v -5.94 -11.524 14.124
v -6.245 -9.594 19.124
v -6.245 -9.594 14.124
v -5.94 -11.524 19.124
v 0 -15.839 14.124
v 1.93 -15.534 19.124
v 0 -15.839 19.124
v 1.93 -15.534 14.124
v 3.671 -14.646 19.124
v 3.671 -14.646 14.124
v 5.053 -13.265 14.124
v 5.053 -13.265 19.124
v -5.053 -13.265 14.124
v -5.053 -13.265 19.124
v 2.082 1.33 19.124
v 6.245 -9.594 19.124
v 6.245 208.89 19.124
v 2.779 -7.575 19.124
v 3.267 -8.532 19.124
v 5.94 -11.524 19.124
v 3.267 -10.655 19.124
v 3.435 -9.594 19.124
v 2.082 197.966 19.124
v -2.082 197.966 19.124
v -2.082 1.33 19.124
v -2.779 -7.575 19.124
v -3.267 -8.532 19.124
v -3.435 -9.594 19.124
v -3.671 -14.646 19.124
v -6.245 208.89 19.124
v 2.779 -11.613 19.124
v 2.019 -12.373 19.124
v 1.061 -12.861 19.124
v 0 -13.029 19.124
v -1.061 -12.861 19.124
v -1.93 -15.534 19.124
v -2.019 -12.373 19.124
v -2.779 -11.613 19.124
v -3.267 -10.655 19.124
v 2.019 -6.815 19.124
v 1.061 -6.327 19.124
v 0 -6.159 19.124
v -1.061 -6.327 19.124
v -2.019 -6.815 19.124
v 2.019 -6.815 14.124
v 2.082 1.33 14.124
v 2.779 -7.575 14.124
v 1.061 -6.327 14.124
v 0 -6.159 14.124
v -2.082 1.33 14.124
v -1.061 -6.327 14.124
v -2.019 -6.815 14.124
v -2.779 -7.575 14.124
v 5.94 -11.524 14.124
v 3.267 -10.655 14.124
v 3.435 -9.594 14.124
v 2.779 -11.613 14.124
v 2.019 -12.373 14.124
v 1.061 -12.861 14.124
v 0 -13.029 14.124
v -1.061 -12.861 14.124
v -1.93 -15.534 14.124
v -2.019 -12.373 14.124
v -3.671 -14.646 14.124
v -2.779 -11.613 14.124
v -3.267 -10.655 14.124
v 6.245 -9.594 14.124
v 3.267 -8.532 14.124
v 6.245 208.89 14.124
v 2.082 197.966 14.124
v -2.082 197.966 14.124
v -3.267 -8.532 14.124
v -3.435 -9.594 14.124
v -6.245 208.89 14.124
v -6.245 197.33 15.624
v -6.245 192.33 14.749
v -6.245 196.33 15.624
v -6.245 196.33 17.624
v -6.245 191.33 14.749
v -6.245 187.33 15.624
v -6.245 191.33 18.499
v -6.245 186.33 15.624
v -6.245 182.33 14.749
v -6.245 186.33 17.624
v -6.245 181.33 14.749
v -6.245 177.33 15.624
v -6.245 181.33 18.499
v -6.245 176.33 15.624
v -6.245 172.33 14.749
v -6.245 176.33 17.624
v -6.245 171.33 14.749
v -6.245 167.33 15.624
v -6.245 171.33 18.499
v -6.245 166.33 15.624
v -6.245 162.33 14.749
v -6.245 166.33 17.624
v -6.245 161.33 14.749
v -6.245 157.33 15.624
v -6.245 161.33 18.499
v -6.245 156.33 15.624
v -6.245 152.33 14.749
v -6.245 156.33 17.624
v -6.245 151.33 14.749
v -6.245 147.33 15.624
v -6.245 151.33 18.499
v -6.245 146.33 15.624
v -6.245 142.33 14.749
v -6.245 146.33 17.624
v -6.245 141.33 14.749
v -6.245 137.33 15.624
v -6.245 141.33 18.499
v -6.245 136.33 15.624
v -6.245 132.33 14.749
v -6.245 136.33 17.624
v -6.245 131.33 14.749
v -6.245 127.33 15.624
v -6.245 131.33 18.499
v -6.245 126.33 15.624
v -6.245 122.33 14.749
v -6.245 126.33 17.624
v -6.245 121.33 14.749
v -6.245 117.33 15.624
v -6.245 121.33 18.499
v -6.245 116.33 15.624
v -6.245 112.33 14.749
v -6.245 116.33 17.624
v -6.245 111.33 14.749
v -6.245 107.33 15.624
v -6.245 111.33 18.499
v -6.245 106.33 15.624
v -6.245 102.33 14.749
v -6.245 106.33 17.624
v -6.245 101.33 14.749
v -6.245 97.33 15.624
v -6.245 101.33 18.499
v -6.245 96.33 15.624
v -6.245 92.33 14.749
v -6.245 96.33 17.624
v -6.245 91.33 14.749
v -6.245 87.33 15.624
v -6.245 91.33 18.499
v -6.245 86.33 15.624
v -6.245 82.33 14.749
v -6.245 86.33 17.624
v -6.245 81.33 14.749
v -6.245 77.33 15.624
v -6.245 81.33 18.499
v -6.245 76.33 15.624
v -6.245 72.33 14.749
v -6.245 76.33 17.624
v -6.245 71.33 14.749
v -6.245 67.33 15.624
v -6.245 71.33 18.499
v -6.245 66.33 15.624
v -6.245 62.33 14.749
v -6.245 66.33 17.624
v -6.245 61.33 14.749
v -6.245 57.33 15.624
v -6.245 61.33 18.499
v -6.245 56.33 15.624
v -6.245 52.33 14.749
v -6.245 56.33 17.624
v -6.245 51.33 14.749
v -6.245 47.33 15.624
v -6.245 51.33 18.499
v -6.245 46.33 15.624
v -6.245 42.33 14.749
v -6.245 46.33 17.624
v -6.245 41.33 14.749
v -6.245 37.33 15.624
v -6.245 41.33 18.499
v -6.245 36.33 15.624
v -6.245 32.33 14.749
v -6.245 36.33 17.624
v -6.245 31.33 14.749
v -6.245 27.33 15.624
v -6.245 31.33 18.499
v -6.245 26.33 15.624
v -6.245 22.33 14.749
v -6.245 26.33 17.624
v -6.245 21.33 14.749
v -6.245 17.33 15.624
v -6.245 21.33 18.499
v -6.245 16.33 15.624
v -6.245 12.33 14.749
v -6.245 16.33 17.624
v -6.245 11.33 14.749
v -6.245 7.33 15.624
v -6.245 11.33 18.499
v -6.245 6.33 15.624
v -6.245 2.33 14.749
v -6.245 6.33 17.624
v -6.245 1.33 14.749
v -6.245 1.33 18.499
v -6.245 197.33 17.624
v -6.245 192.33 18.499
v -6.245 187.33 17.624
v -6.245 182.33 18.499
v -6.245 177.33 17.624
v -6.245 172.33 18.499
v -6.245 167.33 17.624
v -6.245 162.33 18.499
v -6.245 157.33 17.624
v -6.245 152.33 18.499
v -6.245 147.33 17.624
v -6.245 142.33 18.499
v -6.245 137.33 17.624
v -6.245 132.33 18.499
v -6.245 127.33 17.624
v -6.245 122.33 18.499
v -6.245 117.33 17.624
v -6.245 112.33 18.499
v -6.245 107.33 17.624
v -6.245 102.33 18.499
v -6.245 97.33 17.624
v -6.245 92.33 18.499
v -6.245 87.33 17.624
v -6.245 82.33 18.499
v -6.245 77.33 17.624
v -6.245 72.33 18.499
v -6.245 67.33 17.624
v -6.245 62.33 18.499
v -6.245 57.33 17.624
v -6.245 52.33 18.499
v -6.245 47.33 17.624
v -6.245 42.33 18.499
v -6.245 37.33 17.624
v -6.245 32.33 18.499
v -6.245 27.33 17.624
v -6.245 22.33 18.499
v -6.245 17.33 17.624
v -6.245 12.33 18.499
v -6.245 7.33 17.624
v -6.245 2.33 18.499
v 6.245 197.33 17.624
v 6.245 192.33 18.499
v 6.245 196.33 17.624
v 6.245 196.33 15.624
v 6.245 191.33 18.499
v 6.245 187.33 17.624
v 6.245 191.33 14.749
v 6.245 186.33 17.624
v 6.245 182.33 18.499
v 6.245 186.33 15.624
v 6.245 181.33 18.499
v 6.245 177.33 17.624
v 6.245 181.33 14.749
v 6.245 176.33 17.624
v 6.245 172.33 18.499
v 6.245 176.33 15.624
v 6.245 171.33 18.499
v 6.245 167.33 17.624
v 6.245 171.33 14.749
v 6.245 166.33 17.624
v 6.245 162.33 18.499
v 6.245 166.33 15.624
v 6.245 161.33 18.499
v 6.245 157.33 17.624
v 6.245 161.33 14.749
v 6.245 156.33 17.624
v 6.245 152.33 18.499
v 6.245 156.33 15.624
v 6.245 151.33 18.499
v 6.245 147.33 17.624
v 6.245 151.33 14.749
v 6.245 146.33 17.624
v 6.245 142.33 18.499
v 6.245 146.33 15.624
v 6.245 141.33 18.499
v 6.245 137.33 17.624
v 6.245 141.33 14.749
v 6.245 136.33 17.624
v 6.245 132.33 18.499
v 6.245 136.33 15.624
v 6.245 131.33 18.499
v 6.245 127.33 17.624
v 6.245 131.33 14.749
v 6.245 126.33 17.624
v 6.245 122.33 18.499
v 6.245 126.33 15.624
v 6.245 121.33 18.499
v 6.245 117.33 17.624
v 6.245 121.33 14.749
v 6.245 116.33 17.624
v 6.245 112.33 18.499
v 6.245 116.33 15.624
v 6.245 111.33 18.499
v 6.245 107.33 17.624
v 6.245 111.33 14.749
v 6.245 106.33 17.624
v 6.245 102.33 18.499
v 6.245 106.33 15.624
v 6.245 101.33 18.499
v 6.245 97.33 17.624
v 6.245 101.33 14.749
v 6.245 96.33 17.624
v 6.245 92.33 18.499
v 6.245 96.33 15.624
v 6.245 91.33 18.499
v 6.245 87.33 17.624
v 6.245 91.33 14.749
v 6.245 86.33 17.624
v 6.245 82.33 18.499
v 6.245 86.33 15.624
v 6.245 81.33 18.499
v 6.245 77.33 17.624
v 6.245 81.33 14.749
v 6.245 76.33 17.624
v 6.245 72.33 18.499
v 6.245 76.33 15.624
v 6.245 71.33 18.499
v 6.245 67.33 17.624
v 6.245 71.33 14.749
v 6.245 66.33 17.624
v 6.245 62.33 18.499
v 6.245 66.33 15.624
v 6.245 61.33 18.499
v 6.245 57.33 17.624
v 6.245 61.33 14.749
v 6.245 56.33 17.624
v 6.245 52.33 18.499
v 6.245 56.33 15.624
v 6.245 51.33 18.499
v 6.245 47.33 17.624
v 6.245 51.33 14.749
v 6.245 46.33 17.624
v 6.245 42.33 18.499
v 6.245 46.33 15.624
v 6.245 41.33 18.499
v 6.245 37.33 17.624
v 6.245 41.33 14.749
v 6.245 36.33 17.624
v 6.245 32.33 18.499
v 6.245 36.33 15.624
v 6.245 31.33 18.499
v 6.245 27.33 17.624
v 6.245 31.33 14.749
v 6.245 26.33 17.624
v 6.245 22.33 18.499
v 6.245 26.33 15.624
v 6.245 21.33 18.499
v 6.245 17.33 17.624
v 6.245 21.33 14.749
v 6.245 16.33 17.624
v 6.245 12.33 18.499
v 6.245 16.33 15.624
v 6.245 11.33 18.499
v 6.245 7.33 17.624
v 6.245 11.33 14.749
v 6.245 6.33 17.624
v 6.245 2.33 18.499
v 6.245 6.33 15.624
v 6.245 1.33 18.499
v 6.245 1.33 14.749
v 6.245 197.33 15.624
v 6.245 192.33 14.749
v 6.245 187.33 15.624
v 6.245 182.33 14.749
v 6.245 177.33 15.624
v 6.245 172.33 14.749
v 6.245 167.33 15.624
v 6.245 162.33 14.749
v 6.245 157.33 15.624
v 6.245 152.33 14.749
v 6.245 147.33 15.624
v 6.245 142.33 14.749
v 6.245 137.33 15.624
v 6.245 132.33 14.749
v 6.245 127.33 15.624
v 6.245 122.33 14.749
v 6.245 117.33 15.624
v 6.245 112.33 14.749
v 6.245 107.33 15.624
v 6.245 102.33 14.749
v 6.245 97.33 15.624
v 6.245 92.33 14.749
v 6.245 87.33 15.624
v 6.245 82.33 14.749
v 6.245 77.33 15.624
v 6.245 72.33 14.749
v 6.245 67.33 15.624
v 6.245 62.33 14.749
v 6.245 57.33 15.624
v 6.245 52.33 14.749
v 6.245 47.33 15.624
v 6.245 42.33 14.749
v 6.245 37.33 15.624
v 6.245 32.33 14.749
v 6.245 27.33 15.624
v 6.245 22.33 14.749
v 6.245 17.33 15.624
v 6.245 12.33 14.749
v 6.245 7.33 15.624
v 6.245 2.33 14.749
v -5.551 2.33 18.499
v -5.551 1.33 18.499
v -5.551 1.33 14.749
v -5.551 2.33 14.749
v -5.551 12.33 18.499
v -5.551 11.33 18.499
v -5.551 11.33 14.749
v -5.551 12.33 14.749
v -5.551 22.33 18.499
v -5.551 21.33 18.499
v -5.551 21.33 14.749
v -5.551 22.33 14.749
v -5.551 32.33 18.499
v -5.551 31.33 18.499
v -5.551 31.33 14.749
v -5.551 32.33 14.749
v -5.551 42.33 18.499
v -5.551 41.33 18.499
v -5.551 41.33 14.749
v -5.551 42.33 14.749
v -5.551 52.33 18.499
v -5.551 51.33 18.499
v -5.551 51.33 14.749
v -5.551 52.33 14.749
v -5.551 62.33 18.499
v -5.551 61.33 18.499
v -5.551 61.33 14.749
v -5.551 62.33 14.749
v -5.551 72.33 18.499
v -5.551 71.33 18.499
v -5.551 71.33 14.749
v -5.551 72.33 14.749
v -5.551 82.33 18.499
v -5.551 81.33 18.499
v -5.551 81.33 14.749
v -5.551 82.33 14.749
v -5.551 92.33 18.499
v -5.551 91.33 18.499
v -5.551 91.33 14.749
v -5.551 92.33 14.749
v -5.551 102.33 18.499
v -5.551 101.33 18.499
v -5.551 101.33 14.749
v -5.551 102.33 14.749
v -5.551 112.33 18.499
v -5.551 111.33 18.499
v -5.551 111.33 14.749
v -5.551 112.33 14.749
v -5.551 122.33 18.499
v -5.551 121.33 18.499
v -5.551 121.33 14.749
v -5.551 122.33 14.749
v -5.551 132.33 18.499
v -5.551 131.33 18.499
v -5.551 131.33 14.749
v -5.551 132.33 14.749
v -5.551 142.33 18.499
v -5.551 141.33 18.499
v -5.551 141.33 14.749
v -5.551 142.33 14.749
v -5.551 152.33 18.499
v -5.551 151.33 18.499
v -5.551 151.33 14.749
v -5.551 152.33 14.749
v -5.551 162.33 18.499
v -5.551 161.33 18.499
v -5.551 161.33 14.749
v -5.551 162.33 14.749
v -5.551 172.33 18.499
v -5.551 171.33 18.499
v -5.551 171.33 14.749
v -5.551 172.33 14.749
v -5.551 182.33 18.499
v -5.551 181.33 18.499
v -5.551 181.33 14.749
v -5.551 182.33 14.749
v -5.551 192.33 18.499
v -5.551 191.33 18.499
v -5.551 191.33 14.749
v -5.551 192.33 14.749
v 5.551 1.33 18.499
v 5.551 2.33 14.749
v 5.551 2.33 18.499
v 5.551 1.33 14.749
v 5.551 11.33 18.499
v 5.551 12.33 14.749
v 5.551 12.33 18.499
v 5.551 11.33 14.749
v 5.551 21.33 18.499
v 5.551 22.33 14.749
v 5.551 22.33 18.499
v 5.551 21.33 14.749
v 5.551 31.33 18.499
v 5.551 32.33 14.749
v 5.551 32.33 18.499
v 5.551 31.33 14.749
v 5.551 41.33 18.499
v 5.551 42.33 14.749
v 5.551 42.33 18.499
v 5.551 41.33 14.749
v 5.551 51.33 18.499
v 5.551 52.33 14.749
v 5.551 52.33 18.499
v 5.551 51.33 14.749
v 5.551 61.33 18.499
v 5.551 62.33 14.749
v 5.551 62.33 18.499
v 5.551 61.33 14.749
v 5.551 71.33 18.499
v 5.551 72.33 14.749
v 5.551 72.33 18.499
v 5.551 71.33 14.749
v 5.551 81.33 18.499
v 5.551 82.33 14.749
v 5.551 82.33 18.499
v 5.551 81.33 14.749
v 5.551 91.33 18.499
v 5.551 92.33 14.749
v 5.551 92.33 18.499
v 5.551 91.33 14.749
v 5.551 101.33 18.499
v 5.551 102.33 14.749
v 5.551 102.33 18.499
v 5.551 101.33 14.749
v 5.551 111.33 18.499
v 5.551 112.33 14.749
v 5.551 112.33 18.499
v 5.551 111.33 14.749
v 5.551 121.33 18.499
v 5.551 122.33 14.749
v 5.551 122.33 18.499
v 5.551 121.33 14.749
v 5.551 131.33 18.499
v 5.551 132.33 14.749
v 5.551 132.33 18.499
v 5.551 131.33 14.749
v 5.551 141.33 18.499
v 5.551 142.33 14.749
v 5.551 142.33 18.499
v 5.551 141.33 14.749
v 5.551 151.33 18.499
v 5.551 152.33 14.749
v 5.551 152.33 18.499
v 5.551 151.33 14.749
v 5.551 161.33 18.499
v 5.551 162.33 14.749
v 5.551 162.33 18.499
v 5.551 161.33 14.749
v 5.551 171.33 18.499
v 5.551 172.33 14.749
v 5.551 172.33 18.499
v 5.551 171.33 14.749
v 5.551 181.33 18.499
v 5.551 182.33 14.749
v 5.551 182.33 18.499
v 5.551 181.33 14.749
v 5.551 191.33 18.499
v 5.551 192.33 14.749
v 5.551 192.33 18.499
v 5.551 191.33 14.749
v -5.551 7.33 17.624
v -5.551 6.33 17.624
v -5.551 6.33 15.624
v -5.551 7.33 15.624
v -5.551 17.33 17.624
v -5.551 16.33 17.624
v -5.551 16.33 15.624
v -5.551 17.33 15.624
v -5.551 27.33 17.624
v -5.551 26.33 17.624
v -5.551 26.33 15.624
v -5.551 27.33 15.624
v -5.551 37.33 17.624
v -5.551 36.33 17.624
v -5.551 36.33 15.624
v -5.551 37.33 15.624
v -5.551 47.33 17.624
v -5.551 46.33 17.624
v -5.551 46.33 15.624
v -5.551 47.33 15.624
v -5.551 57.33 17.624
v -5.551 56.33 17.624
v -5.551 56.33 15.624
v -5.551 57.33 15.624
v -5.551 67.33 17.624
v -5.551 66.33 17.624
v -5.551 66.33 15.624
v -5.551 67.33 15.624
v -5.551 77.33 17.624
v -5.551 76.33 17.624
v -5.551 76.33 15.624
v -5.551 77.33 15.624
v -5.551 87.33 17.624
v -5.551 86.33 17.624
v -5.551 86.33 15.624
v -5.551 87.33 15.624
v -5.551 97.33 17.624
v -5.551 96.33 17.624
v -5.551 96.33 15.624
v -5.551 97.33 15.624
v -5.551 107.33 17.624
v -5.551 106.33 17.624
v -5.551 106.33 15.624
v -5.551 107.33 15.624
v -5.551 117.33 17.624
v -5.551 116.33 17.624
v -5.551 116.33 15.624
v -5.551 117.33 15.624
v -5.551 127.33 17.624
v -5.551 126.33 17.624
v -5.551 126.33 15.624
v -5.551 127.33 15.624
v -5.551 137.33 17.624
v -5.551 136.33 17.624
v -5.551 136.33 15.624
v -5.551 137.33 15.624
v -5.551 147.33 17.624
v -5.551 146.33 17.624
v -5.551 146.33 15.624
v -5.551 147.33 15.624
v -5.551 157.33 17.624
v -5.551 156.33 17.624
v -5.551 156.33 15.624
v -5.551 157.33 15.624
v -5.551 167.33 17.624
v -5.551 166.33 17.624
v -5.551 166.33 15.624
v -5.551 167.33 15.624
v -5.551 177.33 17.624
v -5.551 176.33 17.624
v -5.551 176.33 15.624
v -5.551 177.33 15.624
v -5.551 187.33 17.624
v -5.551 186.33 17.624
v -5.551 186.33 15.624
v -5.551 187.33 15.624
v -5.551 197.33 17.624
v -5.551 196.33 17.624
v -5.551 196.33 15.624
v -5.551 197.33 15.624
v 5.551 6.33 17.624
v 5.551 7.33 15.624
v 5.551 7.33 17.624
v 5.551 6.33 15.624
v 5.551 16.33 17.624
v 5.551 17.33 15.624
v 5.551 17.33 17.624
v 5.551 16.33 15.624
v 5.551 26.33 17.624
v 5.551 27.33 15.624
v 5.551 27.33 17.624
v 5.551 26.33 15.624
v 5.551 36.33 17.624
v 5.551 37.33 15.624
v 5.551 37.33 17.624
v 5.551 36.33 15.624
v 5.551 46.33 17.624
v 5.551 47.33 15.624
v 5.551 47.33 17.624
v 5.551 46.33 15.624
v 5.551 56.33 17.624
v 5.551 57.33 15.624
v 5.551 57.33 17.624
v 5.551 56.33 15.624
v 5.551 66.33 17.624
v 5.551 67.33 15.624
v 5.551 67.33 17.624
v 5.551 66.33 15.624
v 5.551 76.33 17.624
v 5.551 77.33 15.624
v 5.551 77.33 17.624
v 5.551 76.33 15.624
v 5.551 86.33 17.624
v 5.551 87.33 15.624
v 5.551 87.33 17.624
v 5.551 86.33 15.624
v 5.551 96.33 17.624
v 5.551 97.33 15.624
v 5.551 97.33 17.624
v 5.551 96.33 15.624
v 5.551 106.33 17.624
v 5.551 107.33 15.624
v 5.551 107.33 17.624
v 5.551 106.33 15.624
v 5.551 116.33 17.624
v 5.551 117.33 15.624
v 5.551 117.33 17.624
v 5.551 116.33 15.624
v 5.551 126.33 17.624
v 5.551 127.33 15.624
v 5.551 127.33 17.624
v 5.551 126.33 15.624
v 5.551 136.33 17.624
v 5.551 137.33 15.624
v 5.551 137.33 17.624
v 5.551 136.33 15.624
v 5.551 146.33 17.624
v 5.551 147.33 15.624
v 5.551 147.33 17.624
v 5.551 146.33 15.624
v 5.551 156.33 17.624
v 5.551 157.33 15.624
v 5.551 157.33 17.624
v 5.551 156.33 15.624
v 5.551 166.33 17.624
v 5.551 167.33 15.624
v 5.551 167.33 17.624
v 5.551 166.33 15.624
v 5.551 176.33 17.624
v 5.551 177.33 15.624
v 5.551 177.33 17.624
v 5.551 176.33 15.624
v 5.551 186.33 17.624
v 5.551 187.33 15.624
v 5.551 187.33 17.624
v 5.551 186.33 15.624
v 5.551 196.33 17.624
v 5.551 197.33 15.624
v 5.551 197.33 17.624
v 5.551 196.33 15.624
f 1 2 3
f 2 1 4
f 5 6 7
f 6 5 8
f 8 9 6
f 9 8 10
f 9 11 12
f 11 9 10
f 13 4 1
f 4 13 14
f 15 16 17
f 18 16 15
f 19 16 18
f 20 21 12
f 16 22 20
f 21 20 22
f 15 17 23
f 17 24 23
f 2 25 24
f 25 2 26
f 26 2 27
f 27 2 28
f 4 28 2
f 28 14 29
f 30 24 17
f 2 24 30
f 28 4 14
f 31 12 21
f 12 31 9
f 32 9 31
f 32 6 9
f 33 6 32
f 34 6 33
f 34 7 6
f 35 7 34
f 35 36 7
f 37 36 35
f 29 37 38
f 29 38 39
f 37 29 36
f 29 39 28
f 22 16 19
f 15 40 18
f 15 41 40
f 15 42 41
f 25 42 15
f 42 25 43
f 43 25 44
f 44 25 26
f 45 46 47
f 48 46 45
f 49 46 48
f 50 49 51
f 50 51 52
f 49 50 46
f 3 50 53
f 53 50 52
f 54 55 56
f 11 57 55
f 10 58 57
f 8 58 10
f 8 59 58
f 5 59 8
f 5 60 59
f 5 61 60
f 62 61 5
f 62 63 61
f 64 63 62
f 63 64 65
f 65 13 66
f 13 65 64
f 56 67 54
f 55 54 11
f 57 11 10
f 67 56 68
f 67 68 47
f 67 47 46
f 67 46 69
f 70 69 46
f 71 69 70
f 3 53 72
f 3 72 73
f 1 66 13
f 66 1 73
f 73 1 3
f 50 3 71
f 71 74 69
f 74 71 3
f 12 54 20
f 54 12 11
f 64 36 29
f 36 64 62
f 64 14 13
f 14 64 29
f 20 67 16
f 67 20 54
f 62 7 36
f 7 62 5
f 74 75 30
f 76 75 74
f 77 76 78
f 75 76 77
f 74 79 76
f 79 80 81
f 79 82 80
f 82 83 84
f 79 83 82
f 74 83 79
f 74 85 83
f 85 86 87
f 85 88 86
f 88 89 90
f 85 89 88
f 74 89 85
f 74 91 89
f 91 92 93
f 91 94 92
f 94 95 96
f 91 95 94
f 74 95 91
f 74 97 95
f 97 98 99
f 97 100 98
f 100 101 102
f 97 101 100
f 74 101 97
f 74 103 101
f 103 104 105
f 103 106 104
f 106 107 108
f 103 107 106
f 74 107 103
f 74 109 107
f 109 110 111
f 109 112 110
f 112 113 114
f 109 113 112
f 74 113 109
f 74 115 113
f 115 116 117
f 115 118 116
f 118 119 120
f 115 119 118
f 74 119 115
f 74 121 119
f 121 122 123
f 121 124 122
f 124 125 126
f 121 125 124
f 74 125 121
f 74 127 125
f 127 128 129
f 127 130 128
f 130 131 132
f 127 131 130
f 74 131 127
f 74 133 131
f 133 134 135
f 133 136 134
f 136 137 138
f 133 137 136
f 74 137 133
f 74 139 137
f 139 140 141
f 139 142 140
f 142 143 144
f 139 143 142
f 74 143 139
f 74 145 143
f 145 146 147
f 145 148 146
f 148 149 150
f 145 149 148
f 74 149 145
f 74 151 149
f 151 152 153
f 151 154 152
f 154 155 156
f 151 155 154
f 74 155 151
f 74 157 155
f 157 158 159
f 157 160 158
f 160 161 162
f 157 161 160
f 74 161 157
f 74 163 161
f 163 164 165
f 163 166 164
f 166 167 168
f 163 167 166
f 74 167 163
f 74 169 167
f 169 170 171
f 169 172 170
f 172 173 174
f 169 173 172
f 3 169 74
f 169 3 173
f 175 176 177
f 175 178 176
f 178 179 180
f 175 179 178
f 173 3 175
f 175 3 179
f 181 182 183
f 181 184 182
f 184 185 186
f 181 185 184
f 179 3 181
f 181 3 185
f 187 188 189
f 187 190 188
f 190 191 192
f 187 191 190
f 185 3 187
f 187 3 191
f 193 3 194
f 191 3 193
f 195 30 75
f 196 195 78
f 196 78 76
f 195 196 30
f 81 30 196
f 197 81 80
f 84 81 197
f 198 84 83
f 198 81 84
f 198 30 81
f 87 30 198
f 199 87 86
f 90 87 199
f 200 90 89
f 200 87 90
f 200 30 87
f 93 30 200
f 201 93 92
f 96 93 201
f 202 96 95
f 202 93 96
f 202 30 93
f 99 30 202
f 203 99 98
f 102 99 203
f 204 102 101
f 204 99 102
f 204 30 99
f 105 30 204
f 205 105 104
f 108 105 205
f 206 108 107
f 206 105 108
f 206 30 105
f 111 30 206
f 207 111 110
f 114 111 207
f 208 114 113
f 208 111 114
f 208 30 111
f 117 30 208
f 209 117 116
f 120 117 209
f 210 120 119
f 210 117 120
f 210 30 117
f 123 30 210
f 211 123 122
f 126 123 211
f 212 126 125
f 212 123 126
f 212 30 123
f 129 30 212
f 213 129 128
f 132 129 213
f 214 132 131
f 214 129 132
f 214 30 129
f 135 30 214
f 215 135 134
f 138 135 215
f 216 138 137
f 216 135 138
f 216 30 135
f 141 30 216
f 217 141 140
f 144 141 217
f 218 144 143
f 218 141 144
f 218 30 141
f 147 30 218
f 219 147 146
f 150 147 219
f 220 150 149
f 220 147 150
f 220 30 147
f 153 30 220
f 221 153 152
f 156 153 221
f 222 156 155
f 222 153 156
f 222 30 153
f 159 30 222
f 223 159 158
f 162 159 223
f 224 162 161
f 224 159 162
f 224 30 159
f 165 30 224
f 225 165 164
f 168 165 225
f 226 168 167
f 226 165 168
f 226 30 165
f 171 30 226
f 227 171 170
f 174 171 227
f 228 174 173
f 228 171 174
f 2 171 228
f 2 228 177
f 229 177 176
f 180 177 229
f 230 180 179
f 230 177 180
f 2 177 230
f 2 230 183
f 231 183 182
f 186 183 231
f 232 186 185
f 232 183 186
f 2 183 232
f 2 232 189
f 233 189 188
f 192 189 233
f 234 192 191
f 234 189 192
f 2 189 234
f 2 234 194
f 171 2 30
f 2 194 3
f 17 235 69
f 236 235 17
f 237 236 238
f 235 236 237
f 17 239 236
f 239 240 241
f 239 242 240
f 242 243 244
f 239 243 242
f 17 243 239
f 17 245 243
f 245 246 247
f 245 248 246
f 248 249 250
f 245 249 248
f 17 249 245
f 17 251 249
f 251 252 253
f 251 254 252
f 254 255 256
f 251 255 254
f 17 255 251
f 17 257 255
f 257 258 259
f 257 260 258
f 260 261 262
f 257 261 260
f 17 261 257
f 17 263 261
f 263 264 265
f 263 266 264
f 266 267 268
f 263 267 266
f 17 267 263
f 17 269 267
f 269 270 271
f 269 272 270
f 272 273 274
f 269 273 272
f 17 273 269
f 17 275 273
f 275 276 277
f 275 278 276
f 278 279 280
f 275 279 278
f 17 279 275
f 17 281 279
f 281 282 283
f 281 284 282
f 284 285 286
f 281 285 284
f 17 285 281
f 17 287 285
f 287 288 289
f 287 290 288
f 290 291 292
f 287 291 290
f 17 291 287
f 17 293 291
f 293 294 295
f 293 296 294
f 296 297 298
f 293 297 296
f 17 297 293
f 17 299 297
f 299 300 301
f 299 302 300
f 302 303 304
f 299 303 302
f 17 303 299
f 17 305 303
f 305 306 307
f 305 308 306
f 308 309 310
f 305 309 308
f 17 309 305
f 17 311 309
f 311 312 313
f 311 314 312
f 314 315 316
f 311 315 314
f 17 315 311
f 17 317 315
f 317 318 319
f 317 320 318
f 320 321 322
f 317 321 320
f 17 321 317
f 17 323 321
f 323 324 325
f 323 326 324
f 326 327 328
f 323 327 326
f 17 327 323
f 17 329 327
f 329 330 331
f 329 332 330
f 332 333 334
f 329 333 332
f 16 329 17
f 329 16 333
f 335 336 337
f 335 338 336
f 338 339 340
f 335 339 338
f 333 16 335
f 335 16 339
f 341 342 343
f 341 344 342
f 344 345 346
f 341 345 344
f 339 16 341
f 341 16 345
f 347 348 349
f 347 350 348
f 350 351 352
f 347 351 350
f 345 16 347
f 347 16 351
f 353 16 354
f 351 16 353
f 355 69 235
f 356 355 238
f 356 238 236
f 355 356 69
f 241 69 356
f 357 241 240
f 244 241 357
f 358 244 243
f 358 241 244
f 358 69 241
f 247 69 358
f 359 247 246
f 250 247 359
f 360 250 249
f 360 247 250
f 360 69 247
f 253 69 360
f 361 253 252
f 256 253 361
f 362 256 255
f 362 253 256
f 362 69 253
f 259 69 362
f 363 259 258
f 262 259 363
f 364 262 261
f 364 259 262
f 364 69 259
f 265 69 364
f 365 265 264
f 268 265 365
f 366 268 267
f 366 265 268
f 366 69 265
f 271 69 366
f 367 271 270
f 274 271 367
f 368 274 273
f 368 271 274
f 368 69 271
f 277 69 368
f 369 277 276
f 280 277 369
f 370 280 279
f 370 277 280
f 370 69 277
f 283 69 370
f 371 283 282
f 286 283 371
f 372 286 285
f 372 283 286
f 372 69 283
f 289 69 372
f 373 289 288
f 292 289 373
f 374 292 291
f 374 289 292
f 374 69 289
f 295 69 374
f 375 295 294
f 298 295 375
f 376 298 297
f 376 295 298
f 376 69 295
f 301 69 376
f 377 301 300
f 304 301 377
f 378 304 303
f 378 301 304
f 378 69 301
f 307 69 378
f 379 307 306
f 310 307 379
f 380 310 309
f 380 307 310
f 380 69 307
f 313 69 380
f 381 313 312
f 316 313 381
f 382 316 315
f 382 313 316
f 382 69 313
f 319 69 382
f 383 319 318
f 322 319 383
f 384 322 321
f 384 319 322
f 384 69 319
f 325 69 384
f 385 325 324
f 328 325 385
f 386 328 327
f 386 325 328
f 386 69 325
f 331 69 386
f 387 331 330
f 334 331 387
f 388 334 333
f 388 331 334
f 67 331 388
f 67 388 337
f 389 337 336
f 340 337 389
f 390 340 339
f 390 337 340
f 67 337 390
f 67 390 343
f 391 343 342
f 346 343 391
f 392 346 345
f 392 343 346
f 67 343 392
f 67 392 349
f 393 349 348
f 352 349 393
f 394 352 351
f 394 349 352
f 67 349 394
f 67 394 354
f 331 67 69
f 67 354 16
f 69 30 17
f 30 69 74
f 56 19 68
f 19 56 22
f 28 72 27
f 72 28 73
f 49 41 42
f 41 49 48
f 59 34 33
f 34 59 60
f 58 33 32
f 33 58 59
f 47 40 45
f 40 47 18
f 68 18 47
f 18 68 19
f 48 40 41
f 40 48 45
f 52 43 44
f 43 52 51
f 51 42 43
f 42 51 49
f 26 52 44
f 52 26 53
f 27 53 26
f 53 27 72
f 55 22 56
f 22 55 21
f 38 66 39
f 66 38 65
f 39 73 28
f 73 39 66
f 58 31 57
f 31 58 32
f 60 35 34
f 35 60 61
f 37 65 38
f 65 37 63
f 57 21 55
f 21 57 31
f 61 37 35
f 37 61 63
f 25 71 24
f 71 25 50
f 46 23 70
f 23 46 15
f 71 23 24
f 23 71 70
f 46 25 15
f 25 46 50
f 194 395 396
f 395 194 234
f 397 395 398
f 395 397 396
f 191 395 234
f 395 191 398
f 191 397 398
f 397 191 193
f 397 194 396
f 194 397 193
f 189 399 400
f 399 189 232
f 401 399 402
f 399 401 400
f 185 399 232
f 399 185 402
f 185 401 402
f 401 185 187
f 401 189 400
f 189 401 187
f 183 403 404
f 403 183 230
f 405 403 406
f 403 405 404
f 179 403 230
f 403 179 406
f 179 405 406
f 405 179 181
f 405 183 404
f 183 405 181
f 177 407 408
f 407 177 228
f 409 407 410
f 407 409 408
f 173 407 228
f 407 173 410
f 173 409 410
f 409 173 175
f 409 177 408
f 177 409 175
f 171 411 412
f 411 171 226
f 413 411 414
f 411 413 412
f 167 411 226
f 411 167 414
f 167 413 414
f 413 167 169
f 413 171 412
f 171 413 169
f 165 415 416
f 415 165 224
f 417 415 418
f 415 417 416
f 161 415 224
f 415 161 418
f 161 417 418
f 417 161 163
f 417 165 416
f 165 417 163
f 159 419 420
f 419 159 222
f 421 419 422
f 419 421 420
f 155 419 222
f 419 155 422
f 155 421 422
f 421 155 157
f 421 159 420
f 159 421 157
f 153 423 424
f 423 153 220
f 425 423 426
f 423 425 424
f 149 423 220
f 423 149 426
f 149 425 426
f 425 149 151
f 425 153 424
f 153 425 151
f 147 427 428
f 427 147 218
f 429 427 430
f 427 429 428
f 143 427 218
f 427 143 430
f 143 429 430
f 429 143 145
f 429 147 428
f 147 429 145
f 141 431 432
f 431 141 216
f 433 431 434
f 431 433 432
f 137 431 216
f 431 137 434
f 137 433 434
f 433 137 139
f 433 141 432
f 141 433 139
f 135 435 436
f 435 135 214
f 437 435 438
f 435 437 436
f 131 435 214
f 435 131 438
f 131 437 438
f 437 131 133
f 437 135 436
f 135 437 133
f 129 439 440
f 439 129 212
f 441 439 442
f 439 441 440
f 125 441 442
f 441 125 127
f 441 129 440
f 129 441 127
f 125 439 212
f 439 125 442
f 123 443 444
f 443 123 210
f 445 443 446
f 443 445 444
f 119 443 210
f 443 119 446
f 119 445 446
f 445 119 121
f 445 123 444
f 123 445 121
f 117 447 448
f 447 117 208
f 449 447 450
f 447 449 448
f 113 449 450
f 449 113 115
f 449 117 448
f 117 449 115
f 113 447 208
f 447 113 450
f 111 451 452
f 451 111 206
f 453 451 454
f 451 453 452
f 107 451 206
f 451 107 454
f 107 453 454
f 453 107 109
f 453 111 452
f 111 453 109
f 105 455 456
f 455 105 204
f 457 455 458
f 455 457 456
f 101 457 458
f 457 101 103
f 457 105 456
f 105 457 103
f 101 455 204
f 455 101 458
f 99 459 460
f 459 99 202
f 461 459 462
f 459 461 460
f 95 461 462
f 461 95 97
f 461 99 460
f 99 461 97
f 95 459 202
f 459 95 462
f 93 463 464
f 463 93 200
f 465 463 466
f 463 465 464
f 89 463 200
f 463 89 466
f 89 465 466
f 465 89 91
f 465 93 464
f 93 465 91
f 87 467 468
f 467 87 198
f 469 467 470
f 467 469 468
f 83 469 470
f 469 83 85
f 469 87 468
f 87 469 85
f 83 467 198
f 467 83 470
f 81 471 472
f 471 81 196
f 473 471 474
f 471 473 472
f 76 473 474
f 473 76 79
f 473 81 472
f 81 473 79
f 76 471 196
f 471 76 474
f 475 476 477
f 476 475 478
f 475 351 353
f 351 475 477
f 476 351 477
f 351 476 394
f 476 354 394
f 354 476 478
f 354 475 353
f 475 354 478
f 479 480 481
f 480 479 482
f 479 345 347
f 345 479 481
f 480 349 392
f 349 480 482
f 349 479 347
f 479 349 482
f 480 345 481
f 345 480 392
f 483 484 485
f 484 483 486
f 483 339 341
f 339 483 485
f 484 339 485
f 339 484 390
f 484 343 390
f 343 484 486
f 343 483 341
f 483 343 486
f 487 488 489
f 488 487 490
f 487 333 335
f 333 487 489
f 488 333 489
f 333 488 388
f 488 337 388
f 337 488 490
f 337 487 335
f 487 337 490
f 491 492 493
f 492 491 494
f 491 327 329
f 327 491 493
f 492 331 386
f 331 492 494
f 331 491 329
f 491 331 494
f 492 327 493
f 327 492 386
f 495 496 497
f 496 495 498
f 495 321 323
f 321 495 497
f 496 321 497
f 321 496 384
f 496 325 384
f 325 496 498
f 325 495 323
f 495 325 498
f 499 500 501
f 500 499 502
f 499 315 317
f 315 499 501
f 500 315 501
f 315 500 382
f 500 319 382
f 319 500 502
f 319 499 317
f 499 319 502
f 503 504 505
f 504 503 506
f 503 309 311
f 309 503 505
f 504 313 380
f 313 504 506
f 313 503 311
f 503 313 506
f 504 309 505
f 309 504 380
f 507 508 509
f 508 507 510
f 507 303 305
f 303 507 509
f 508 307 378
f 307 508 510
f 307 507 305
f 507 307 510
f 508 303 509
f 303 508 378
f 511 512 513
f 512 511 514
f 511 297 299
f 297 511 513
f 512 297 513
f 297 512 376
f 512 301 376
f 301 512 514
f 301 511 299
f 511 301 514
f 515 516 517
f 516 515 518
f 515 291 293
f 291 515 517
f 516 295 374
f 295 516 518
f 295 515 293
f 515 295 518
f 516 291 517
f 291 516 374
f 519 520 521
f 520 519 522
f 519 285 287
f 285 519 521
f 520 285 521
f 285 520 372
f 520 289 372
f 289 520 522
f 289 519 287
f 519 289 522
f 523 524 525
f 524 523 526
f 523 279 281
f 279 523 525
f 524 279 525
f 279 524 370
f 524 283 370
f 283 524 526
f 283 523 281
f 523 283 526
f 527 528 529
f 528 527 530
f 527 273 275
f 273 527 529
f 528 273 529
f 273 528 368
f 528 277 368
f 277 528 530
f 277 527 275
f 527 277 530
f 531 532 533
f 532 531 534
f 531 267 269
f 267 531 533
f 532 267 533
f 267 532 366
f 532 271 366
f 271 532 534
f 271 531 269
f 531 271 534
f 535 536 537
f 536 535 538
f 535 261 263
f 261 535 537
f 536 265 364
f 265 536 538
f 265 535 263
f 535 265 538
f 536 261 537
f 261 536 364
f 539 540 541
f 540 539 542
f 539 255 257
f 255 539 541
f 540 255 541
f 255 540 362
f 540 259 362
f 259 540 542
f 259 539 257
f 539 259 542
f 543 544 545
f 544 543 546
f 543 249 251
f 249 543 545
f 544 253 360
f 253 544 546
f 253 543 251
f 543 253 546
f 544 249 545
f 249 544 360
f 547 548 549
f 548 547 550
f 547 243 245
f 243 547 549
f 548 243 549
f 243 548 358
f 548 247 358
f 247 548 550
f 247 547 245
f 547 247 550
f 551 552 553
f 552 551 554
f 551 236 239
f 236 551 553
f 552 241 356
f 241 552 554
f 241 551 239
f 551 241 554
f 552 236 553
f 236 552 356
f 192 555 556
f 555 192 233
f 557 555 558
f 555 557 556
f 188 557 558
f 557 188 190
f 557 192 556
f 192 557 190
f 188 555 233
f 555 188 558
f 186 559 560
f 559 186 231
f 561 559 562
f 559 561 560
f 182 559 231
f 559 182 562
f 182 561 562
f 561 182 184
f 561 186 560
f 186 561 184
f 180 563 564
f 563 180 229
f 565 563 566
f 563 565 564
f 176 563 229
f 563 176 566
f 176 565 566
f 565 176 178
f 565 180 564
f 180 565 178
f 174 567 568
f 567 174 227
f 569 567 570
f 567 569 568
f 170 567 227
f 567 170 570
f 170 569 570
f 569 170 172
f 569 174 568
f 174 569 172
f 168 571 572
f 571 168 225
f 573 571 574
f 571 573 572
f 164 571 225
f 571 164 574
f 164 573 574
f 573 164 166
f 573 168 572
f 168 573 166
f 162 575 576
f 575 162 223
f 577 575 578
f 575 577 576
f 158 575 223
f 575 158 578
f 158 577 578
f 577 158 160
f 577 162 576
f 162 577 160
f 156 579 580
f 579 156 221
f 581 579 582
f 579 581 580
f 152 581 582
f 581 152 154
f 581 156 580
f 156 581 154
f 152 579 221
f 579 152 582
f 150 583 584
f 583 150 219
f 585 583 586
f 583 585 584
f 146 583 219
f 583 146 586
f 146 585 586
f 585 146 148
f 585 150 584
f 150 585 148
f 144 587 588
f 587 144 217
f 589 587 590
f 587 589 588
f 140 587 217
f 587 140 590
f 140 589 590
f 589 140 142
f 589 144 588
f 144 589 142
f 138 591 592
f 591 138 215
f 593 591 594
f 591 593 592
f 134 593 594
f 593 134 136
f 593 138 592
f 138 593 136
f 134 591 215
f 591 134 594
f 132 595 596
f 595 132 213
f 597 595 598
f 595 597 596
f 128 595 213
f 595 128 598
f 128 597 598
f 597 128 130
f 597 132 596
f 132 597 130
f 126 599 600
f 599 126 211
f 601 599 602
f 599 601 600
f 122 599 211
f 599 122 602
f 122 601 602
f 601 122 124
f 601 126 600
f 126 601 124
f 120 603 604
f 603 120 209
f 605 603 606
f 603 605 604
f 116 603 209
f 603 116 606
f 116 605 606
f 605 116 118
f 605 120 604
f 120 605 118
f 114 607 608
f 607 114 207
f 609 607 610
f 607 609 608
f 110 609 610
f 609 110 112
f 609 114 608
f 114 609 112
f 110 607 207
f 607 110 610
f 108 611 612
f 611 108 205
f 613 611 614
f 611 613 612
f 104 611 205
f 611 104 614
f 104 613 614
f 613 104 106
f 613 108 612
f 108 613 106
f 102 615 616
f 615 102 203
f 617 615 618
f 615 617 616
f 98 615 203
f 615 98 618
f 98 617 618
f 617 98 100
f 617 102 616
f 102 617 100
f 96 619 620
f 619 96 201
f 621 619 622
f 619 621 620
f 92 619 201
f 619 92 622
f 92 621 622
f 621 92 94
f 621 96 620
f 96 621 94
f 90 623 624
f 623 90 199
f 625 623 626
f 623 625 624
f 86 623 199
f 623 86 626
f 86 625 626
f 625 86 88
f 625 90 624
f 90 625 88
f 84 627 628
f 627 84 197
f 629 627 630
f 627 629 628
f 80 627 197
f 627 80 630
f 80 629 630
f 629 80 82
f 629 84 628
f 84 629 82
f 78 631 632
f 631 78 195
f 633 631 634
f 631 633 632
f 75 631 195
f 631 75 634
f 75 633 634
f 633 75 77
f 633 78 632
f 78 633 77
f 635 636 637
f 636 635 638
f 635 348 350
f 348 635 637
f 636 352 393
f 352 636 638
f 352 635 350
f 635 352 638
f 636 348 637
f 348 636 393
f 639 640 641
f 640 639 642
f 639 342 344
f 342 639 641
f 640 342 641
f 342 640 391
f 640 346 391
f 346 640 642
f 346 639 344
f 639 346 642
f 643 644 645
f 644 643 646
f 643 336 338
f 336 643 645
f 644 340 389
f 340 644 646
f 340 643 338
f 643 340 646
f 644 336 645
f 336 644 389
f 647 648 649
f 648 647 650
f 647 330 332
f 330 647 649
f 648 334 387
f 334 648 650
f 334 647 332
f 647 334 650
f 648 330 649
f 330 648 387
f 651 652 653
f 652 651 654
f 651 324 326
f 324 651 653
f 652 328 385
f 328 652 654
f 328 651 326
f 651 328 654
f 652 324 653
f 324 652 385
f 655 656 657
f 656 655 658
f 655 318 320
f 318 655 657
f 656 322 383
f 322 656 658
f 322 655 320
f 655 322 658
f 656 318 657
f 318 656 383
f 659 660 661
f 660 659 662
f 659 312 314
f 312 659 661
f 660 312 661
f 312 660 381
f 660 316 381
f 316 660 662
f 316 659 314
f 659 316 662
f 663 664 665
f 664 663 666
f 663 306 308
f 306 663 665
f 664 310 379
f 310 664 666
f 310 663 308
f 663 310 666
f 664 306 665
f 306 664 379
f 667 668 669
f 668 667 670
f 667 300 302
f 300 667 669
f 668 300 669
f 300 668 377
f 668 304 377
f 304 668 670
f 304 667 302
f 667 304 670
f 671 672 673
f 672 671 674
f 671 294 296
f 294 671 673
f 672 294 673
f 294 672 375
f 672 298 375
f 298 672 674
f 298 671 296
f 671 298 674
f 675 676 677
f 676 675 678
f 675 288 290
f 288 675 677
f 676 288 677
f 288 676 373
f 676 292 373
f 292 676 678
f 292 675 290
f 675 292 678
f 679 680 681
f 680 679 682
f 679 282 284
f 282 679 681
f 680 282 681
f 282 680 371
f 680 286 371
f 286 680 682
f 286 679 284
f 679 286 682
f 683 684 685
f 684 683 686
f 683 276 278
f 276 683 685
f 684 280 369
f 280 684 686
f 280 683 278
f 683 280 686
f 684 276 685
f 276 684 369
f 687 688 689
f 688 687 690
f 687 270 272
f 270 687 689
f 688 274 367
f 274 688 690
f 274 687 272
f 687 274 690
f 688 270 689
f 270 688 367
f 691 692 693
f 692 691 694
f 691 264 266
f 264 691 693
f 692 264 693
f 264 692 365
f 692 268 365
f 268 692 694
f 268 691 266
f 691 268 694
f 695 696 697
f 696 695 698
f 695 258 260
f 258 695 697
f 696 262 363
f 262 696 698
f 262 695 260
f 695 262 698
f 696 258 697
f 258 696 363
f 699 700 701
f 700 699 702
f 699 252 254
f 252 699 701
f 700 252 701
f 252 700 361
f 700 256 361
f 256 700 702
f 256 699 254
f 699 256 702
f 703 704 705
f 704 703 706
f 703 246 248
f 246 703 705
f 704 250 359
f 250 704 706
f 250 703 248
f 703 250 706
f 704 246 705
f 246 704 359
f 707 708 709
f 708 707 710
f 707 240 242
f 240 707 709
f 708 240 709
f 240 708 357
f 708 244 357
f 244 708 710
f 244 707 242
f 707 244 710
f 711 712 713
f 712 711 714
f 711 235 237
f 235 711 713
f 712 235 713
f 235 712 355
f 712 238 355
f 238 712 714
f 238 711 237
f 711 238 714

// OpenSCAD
//////////////////////////////////////////////////////////////////////////////////////////////
// Public Domain Parametric Involute Spur Gear (and involute helical gear and involute rack)
// version 1.1
// by Leemon Baird, 2011, Leemon@Leemon.com
//http://www.thingiverse.com/thing:5505
//
// This file is public domain.  Use it for any purpose, including commercial
// applications.  Attribution would be nice, but is not required.  There is
// no warranty of any kind, including its correctness, usefulness, or safety.
// 
// This is parameterized involute spur (or helical) gear.  It is much simpler and less powerful than
// others on Thingiverse.  But it is public domain.  I implemented it from scratch from the 
// descriptions and equations on Wikipedia and the web, using Mathematica for calculations and testing,
// and I now release it into the public domain.
//
//		http://en.wikipedia.org/wiki/Involute_gear
//		http://en.wikipedia.org/wiki/Gear
//		http://en.wikipedia.org/wiki/List_of_gear_nomenclature
//		http://gtrebaol.free.fr/doc/catia/spur_gear.html
//		http://www.cs.cmu.edu/~rapidproto/mechanisms/chpt7.html
//
// The module gear() gives an involute spur gear, with reasonable defaults for all the parameters.
// Normally, you should just choose the first 4 parameters, and let the rest be default values.
// The module gear() gives a gear in the XY plane, centered on the origin, with one tooth centered on
// the positive Y axis.  The various functions below it take the same parameters, and return various
// measurements for the gear.  The most important is pitch_radius, which tells how far apart to space
// gears that are meshing, and adendum_radius, which gives the size of the region filled by the gear.
// A gear has a "pitch circle", which is an invisible circle that cuts through the middle of each
// tooth (though not the exact center). In order for two gears to mesh, their pitch circles should 
// just touch.  So the distance between their centers should be pitch_radius() for one, plus pitch_radius() 
// for the other, which gives the radii of their pitch circles.
//
// In order for two gears to mesh, they must have the same mm_per_tooth and pressure_angle parameters.  
// mm_per_tooth gives the number of millimeters of arc around the pitch circle covered by one tooth and one
// space between teeth.  The pitch angle controls how flat or bulged the sides of the teeth are.  Common
// values include 14.5 degrees and 20 degrees, and occasionally 25.  Though I've seen 28 recommended for
// plastic gears. Larger numbers bulge out more, giving stronger teeth, so 28 degrees is the default here.
//
// The ratio of number_of_teeth for two meshing gears gives how many times one will make a full 
// revolution when the the other makes one full revolution.  If the two numbers are coprime (i.e. 
// are not both divisible by the same number greater than 1), then every tooth on one gear
// will meet every tooth on the other, for more even wear.  So coprime numbers of teeth are good.
//
// The module rack() gives a rack, which is a bar with teeth.  A rack can mesh with any
// gear that has the same mm_per_tooth and pressure_angle.
//
// Some terminology: 
// The outline of a gear is a smooth circle (the "pitch circle") which has mountains and valleys
// added so it is toothed.  So there is an inner circle (the "root circle") that touches the 
// base of all the teeth, an outer circle that touches the tips of all the teeth,
// and the invisible pitch circle in between them.  There is also a "base circle", which can be smaller than
// all three of the others, which controls the shape of the teeth.  The side of each tooth lies on the path 
// that the end of a string would follow if it were wrapped tightly around the base circle, then slowly unwound.  
// That shape is an "involute", which gives this type of gear its name.
//
//////////////////////////////////////////////////////////////////////////////////////////////

//An involute spur gear, with reasonable defaults for all the parameters.
//Normally, you should just choose the first 4 parameters, and let the rest be default values.
//Meshing gears must match in mm_per_tooth, pressure_angle, and twist,
//and be separated by the sum of their pitch radii, which can be found with pitch_radius().
module gear (
	mm_per_tooth    = 3,    //this is the "circular pitch", the circumference of the pitch circle divided by the number of teeth
	number_of_teeth = 11,   //total number of teeth around the entire perimeter
	thickness       = 6,    //thickness of gear in mm
	hole_diameter   = 3,    //diameter of the hole in the center, in mm
	twist           = 0,    //teeth rotate this many degrees from bottom of gear to top.  360 makes the gear a screw with each thread going around once
	teeth_to_hide   = 0,    //number of teeth to delete to make this only a fraction of a circle
	pressure_angle  = 28,   //Controls how straight or bulged the tooth sides are. In degrees.
	clearance       = 0.0,  //gap between top of a tooth on one gear and bottom of valley on a meshing gear (in millimeters)
	backlash        = 0.0   //gap between two meshing teeth, in the direction along the circumference of the pitch circle
) {
	assign(pi = 3.1415926)
	assign(p  = mm_per_tooth * number_of_teeth / pi / 2)  //radius of pitch circle
	assign(c  = p + mm_per_tooth / pi - clearance)        //radius of outer circle
	assign(b  = p*cos(pressure_angle))                    //radius of base circle
	assign(r  = p-(c-p)-clearance)                        //radius of root circle
	assign(t  = mm_per_tooth/2-backlash/2)                //tooth thickness at pitch circle
	assign(k  = -iang(b, p) - t/2/p/pi*180) {             //angle to where involute meets base circle on each side of tooth
		union() {
			for (i = [0:number_of_teeth-teeth_to_hide-1] )
				rotate([0,0,i*360/number_of_teeth])
					linear_extrude(height = thickness, center = true, convexity = 10, twist = twist)
						polygon(
							points=[
								[0, -hole_diameter/10],
								polar(r, -181/number_of_teeth),
								polar(r, r<b ? k : -180/number_of_teeth),
								q7(0/5,r,b,c,k, 1),q7(1/5,r,b,c,k, 1),q7(2/5,r,b,c,k, 1),q7(3/5,r,b,c,k, 1),q7(4/5,r,b,c,k, 1),q7(5/5,r,b,c,k, 1),
								q7(5/5,r,b,c,k,-1),q7(4/5,r,b,c,k,-1),q7(3/5,r,b,c,k,-1),q7(2/5,r,b,c,k,-1),q7(1/5,r,b,c,k,-1),q7(0/5,r,b,c,k,-1),
								polar(r, r<b ? -k : 180/number_of_teeth),
								polar(r, 181/number_of_teeth)
							],
 							paths=[[0,1,2,3,4,5,6,7,8,9,10,11,12,13,14,15,16]]
						);
			translate([0,0,-3]) cylinder(h=2*thickness+1, r=hole_diameter/2, center=true, $fn=20);
		}
	}
};	
//these 4 functions are used by gear
function polar(r,theta)   = r*[sin(theta), cos(theta)];                            //convert polar to cartesian coordinates
function iang(r1,r2)      = sqrt((r2/r1)*(r2/r1) - 1)/3.1415926*180 - acos(r1/r2); //unwind a string this many degrees to go from radius r1 to radius r2
function q7(f,r,b,r2,t,s) = q6(b,s,t,(1-f)*max(b,r)+f*r2);                         //radius a fraction f up the curved side of the tooth 
function q6(b,s,t,d)      = polar(d,s*(iang(b,d)+t));                              //point at radius d on the involute curve



//These 5 functions let the user find the derived dimensions of the gear.
//A gear fits within a circle of radius outer_radius, and two gears should have
//their centers separated by the sum of their pictch_radius.
function circular_pitch  (mm_per_tooth=3) = mm_per_tooth;                     //tooth density expressed as "circular pitch" in millimeters
function diametral_pitch (mm_per_tooth=3) = 3.1415926 / mm_per_tooth;         //tooth density expressed as "diametral pitch" in teeth per millimeter
function module_value    (mm_per_tooth=3) = mm_per_tooth / pi;                //tooth density expressed as "module" or "modulus" in millimeters
function pitch_radius    (mm_per_tooth=3,number_of_teeth=11) = mm_per_tooth * number_of_teeth / 3.1415926 / 2;
function outer_radius    (mm_per_tooth=3,number_of_teeth=11,clearance=0.1)    //The gear fits entirely within a cylinder of this radius.
	= mm_per_tooth*(1+number_of_teeth/2)/3.1415926  - clearance;              

//////////////////////////////////////////////////////////////////////////////////////////////
//example gear train.  
//Try it with OpenSCAD View/Animate command with 20 steps and 24 FPS.
//The gears will continue to be rotated to mesh correctly if you change the number of teeth.

n1 = 13; //red gear number of teeth
echo("num",ceil(n1*(3.6)));
n2 = ceil(n1*(3.6)); //green gear
n3 = ceil(n1*(1.5)); //extra gear
//n3 = 5;  //blue gear
//n4 = 20; //orange gear
//n5 = 8;  //gray rack
mm_per_tooth = 8; //all meshing gears need the same mm_per_tooth (and the same pressure_angle)
thickness    = 5;
vert_shift = thickness/2;
big_gear_thickness = thickness*1.2;
big_gear_vert_shift = big_gear_thickness/2;
hole         = 5; // diameter in mm
height       = 12;

d1 =pitch_radius(mm_per_tooth,n1);
d12=pitch_radius(mm_per_tooth,n1) + pitch_radius(mm_per_tooth,n2);
//d13=pitch_radius(mm_per_tooth,n1) + pitch_radius(mm_per_tooth,n3);
//d14=pitch_radius(mm_per_tooth,n1) + pitch_radius(mm_per_tooth,n4);

o_r1=outer_radius(mm_per_tooth,n1);
o_r2=outer_radius(mm_per_tooth,n2);
p_r1=pitch_radius(mm_per_tooth,n1);
p_r2=pitch_radius(mm_per_tooth,n2);

pin_radius    = (p_r1-(hole/2))/4.5;
pin_height   = o_r1*1.75;
pin_shift    = (hole/2)+(p_r1*(3/7));
canvas_thickness = big_gear_thickness/4;
bar_width = pin_radius*4;
bar_length = o_r1*11.5;
bar_hole_length = bar_length*.9;
support_radius = hole;
support_height = pin_height/2-thickness/2-1.5;

// straight bar
// remove tick marks
difference () {
    // remove long hole down center
    difference() {
        //remove hole for pin
        difference () {
            // add rounded end to long bar
            union () {
                translate([0, -pin_shift, pin_height/2]) color([0.25,0.25,1.00]) cylinder (h = thickness, r=bar_width/2, center = true, $fn=20);
                translate([0, -pin_shift+bar_length/2, pin_height/2]) color([0.25,0.25,1.00]) cube (size = [bar_width,bar_length,thickness], center=true);
            }
            translate([0, -pin_shift, pin_height/2]) color([0.25,0.25,1.00]) cylinder (h = thickness*2, r=pin_radius*1.1, center = true, $fn=20);
        }
        translate([0, -pin_shift+bar_length*.50, pin_height/2]) color([0.25,0.25,1.00]) cube (size = [bar_width/3,bar_hole_length,thickness*2], center=true);
    }
    notches();    
}

module notches() {
    for (x = [0 : 10 : bar_hole_length-1]) {
          translate([-bar_width/2, -pin_shift+bar_length*.05+x+.5, pin_height/2]) color([0.25,0.25,1.00]) cube (size = [bar_width/9,1,thickness*.75], center=true);
    }
    for (x = [0 : 10 : bar_hole_length-1]) {
          translate([bar_width/2, -pin_shift+bar_length*.05+x+.5, pin_height/2]) color([0.25,0.25,1.00]) cube (size = [bar_width/9,1,thickness*.75], center=true);
    }
    for (x = [0 : 10 : bar_hole_length-6]) {
          translate([-bar_width/2, -pin_shift+bar_length*.05+x+5.5, pin_height/2]) color([0.25,0.25,1.00]) cube (size = [bar_width/9,1,thickness*.4], center=true);
    }
    for (x = [0 : 10 : bar_hole_length-6]) {
          translate([bar_width/2, -pin_shift+bar_length*.05+x+5.5, pin_height/2]) color([0.25,0.25,1.00]) cube (size = [bar_width/9,1,thickness*.4], center=true);
    }
}

    
echo("outer radius small: ", o_r1);
echo("outer radius large: ", o_r2);
echo("pitch radius small: ", p_r1);
echo("pitch radius large: ", p_r2);
echo("pin_radius: ", pin_radius);
echo("pin_height: ", pin_height);
echo("bar_width: ", bar_width);
echo("bar_length: ", bar_length);
echo("n1: ", n1);
echo("n2: ", n2);
echo("n3: ", n3);
